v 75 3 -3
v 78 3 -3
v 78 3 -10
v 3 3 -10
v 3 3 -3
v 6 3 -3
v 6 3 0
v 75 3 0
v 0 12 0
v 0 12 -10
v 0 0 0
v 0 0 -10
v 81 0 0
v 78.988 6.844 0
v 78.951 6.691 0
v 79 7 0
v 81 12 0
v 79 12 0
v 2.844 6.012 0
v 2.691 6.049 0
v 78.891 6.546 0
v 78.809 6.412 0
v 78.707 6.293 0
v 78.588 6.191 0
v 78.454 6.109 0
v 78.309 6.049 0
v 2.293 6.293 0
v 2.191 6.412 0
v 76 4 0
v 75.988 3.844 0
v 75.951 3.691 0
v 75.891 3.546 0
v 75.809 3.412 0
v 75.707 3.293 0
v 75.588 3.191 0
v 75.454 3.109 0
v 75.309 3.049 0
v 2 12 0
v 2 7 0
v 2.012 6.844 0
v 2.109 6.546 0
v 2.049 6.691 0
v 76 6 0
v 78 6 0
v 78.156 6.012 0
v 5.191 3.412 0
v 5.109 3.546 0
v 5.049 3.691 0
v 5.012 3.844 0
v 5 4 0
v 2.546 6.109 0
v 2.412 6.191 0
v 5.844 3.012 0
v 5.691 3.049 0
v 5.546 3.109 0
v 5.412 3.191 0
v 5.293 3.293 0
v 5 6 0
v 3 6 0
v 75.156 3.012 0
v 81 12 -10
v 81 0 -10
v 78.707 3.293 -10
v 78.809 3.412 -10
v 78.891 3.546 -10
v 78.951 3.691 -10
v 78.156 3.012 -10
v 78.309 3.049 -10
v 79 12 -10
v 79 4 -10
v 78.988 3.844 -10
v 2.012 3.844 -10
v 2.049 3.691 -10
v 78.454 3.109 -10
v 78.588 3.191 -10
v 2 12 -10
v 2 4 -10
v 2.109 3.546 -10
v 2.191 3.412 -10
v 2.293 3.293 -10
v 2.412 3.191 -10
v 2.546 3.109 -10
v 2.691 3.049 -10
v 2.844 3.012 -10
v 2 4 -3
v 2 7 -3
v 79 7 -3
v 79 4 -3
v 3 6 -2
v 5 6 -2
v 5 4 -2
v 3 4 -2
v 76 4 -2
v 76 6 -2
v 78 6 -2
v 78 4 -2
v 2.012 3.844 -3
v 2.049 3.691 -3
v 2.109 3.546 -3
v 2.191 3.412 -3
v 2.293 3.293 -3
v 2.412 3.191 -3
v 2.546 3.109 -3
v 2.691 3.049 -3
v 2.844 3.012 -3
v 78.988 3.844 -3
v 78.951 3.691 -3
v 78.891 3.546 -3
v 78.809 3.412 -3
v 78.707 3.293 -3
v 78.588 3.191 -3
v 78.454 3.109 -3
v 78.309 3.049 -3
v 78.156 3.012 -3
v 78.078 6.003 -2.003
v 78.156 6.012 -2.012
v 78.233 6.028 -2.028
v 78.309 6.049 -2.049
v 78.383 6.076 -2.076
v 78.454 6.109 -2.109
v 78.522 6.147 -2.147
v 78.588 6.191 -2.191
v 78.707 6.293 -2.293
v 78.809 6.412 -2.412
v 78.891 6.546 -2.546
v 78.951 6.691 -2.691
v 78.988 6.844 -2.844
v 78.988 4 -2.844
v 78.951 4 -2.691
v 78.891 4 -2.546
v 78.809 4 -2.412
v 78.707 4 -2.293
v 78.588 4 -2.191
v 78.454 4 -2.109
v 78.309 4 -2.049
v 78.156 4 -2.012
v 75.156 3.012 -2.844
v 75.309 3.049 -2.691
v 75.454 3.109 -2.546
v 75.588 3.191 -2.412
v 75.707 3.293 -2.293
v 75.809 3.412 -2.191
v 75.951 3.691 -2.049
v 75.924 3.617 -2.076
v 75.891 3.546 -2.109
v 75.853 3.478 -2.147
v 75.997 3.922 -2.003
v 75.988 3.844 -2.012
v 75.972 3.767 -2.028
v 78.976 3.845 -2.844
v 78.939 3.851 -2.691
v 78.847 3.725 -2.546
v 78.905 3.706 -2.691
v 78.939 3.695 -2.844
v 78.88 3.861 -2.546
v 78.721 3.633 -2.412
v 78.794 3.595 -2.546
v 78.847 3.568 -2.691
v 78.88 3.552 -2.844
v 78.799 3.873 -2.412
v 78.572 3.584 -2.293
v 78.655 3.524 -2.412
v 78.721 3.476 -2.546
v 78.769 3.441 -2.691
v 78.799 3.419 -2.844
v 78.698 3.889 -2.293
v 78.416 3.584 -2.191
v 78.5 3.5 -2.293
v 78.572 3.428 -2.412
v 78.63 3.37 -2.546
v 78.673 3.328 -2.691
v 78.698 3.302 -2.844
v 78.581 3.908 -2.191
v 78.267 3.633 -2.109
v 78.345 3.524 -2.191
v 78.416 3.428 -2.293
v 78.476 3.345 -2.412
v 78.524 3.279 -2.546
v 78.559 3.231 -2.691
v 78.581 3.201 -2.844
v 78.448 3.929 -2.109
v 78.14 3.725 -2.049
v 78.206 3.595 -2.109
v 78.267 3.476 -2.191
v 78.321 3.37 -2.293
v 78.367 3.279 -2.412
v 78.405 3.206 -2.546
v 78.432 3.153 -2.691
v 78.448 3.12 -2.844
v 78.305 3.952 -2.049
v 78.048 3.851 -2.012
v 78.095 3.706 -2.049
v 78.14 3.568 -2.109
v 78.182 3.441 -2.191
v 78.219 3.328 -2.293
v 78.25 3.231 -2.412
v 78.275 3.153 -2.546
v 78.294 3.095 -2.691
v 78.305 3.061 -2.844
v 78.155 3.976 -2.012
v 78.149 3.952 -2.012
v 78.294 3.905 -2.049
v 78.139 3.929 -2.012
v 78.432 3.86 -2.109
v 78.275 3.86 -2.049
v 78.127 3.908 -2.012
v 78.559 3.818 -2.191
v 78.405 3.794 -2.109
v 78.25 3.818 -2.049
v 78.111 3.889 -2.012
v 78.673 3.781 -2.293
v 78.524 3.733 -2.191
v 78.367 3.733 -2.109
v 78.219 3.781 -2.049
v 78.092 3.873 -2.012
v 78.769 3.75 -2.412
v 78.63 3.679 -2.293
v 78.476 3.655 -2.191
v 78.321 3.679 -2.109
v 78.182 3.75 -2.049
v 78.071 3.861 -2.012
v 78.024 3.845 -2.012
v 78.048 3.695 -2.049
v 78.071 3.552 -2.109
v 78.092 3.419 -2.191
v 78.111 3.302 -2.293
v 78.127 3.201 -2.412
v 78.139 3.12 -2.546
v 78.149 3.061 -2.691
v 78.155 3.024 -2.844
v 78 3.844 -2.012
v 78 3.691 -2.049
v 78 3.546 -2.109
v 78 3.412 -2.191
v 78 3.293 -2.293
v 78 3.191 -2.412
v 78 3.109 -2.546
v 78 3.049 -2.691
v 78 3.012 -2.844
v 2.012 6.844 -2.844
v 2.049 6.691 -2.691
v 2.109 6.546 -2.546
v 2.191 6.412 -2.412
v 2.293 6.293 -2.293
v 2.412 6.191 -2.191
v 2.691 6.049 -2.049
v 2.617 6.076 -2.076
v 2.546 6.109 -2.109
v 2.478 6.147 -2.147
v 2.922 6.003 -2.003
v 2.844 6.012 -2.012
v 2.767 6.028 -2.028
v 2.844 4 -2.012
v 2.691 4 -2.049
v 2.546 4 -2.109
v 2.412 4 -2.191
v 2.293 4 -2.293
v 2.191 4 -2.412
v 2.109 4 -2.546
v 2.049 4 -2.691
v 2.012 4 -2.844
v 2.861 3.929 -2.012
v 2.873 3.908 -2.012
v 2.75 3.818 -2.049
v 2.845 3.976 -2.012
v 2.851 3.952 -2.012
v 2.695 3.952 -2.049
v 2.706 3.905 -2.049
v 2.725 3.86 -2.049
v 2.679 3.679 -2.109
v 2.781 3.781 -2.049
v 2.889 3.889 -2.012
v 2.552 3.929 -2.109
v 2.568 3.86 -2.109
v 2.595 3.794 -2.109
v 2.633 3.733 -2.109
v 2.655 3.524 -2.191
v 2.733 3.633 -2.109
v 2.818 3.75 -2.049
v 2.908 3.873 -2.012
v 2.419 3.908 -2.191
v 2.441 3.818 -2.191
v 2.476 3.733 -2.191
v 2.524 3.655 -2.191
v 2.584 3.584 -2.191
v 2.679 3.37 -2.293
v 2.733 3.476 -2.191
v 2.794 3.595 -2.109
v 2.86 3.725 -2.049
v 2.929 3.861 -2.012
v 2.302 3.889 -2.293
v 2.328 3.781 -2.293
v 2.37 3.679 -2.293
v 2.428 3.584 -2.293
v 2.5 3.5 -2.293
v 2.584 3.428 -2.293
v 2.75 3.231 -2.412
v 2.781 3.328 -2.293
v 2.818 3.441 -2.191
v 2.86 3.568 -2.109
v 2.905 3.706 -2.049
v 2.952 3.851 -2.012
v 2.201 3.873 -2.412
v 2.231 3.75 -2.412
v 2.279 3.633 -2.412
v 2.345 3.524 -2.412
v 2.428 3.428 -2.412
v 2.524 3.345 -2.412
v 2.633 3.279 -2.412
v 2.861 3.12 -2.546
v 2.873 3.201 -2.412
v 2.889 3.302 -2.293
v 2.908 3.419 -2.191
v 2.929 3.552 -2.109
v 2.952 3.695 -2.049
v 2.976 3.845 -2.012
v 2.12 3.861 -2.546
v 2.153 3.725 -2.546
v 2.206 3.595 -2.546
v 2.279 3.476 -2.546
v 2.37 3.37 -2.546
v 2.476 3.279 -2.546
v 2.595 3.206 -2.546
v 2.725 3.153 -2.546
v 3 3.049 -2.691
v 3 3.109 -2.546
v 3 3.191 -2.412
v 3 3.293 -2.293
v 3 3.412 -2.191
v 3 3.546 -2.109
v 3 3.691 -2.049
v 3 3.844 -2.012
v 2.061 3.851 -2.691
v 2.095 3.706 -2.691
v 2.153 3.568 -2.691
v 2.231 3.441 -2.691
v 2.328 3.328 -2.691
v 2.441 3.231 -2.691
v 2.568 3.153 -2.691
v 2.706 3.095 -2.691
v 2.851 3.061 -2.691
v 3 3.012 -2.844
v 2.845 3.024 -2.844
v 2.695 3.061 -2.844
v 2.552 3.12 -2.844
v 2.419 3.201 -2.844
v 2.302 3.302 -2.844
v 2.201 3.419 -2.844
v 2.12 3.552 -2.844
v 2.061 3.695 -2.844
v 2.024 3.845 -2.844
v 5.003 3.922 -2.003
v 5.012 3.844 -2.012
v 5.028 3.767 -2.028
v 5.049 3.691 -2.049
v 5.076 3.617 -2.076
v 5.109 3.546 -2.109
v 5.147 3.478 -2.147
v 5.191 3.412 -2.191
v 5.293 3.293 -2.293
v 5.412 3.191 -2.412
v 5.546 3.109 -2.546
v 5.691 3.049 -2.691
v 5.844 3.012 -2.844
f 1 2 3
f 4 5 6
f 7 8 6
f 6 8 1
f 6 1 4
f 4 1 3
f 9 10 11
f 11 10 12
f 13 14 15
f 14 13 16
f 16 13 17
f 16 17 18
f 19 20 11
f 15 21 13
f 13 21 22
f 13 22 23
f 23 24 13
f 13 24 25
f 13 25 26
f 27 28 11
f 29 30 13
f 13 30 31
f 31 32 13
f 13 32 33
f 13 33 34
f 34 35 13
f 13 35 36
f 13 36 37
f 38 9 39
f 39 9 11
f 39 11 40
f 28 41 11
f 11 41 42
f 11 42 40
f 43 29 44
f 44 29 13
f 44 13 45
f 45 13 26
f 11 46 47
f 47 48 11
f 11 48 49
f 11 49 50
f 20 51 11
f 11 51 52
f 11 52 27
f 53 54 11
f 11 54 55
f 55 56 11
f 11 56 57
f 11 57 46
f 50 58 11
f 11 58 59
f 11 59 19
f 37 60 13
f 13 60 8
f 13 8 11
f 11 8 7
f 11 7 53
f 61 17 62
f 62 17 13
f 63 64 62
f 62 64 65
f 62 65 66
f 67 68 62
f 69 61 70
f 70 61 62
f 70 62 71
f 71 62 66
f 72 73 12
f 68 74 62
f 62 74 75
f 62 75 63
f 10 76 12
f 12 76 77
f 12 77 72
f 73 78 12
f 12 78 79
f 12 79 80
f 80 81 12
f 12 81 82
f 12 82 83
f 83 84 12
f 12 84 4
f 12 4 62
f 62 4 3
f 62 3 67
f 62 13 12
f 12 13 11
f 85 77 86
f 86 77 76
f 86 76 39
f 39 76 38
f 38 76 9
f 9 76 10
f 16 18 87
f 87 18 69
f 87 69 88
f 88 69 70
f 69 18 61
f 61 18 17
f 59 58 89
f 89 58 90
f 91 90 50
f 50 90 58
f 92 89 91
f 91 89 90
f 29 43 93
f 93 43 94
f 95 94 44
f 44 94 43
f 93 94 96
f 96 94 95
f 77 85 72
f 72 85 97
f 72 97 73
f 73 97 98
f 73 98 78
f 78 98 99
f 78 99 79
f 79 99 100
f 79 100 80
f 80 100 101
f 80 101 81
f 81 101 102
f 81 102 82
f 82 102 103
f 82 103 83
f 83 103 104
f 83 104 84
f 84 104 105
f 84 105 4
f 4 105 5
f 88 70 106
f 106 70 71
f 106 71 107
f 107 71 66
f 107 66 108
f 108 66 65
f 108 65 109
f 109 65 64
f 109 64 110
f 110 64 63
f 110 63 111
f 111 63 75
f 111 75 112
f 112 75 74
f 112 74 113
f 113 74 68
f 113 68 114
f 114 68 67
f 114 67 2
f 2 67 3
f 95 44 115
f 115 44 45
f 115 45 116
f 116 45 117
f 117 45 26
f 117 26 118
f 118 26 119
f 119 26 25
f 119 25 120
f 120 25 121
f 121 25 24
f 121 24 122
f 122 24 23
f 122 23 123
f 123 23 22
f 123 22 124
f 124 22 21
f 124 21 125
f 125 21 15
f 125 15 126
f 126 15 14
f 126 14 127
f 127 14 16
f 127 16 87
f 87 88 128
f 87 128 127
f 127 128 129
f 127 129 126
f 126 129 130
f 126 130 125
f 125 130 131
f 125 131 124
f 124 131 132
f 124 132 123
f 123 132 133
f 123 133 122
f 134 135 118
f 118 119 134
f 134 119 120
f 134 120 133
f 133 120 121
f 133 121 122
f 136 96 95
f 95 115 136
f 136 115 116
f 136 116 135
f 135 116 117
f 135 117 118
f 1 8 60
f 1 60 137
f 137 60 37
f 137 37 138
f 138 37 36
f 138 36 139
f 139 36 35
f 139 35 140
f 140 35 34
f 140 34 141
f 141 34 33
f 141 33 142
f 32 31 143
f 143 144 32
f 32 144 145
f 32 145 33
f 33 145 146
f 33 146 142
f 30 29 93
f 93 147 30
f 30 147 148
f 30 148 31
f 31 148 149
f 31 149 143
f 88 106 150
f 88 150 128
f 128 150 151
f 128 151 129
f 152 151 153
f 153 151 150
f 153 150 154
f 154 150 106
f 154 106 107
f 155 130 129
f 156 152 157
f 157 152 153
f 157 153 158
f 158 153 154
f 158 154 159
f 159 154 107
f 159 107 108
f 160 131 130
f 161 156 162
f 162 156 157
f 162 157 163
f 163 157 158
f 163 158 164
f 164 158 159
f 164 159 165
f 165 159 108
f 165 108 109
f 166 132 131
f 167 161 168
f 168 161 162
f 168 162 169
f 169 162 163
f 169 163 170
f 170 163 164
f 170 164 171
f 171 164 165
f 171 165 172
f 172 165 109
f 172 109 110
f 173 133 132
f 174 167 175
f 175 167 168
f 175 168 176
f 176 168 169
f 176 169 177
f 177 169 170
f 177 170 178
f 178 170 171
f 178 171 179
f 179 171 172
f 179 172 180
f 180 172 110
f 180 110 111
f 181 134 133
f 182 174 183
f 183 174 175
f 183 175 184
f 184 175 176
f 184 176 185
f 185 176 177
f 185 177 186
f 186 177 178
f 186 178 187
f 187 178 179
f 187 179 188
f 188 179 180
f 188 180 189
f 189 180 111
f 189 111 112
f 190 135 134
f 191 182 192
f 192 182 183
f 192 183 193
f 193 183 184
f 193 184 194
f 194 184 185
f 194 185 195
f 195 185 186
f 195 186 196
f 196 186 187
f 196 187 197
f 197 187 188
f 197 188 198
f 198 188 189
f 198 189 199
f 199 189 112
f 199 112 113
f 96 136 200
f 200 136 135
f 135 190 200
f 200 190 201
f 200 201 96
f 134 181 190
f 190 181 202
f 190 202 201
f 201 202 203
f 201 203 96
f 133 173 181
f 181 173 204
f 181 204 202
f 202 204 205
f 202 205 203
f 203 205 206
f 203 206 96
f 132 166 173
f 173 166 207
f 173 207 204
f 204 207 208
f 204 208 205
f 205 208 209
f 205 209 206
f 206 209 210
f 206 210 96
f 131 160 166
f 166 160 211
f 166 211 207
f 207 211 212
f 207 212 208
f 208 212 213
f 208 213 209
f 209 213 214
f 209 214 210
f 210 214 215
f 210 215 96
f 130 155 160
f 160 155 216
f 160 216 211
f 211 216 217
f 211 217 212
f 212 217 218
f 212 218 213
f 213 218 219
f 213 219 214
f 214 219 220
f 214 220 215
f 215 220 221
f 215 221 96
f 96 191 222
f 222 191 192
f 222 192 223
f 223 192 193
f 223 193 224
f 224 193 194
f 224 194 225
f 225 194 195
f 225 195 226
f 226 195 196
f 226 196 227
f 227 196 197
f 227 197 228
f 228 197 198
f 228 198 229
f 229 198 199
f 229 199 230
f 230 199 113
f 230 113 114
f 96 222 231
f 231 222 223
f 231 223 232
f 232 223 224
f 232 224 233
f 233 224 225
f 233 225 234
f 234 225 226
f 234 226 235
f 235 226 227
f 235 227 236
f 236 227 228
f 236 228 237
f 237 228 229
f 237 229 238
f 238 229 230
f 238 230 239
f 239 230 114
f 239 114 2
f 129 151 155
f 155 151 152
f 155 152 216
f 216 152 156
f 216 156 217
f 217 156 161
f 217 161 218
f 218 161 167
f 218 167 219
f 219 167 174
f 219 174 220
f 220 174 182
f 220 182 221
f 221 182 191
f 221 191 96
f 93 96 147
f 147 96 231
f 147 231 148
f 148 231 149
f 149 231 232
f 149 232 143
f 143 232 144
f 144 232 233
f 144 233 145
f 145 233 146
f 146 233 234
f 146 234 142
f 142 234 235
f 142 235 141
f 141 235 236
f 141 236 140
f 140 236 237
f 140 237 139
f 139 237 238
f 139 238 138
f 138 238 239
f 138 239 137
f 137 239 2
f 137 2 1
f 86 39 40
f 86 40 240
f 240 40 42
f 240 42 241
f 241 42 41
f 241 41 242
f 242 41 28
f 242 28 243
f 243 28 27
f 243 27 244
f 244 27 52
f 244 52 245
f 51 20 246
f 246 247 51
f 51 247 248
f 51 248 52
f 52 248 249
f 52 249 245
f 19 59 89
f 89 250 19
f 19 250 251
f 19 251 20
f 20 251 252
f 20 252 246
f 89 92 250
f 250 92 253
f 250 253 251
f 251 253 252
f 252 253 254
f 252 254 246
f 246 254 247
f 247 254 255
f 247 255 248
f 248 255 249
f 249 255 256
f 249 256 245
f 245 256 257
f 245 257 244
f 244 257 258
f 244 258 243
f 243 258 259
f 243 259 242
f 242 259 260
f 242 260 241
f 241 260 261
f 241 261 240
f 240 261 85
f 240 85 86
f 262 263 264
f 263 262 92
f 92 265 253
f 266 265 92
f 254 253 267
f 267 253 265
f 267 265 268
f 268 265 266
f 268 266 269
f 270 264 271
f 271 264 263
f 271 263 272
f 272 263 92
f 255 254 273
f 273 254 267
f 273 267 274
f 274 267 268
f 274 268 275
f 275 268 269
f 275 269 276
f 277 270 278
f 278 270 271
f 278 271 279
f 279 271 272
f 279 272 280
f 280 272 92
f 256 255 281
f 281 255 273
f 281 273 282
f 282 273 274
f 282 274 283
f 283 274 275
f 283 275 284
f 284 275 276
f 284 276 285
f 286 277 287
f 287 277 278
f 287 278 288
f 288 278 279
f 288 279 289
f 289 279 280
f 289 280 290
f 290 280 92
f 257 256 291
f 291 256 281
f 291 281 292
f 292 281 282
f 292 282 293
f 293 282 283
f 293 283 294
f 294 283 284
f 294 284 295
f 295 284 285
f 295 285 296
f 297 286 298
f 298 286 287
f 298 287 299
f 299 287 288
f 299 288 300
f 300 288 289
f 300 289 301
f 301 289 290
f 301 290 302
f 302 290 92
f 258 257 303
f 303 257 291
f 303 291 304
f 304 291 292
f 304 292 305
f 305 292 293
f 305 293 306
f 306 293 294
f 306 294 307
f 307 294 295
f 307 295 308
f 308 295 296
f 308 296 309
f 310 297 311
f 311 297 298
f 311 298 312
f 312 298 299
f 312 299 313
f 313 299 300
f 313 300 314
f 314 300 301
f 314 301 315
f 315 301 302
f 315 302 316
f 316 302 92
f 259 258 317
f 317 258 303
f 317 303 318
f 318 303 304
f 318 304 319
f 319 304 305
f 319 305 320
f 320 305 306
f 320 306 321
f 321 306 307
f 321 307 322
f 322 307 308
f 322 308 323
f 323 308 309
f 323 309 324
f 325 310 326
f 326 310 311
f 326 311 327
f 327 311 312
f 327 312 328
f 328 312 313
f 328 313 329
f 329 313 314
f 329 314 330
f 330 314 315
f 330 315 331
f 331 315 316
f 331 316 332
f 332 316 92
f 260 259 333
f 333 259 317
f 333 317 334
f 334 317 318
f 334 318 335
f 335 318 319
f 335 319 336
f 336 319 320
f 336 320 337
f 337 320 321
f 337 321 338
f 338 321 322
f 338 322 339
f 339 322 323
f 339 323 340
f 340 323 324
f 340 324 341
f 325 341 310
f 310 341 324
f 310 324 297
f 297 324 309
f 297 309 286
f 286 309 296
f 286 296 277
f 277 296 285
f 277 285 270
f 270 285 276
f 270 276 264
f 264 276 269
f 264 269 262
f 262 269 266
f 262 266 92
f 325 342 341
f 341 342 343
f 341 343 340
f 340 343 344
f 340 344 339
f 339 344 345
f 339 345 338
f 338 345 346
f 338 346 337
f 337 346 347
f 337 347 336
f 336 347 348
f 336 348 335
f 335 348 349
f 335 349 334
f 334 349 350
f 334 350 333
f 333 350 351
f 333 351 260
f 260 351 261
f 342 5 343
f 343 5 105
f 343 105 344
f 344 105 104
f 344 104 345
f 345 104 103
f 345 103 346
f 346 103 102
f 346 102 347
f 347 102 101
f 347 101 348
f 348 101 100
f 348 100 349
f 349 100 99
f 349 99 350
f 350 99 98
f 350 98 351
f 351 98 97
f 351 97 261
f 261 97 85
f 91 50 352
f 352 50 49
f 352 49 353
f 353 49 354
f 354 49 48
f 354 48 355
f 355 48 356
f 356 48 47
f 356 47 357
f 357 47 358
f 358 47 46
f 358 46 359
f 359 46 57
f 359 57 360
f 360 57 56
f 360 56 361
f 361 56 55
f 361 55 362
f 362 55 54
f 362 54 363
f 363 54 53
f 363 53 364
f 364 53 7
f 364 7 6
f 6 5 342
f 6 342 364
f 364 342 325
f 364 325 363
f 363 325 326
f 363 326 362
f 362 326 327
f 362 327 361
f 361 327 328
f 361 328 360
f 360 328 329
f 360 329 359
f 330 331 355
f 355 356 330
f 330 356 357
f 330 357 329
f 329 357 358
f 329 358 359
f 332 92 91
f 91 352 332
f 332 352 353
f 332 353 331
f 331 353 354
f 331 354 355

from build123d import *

# Parameters (mm, degrees)
SKETCH1_W           = 81
SKETCH1_H           = 10
BOSS_EXTRUDE1_DEPTH = 3
SKETCH2_W           = 2
SKETCH2_H           = 10
BOSS_EXTRUDE2_DEPTH = 9
SKETCH3_W           = 3
SKETCH3_H           = 3
BOSS_EXTRUDE3_DEPTH = 2
FILLET1_R           = 1
FILLET2_R           = 1


with BuildPart() as part:
    # Sketch1 → Boss-Extrude1 (new body)
    with BuildSketch(Plane(origin=(0, 0, 0), x_dir=(1, 0, 0), z_dir=(0, 1, 0))):
        with Locations((40.5, 5)):
            Rectangle(SKETCH1_W, SKETCH1_H)
    extrude(amount=BOSS_EXTRUDE1_DEPTH)

    # Sketch2 → Boss-Extrude2 (add)
    with BuildSketch(Plane(origin=(0, 3, 0), x_dir=(1, 0, 0), z_dir=(0, 1, 0))):
        with Locations((1, 5)):
            Rectangle(SKETCH2_W, SKETCH2_H)
        with Locations((80, 5)):
            Rectangle(SKETCH2_W, SKETCH2_H)
    extrude(amount=BOSS_EXTRUDE2_DEPTH)

    # Sketch3 → Boss-Extrude3 (add)
    with BuildSketch(Plane.XY):
        with Locations((3.5, 4.5)):
            Rectangle(SKETCH3_W, SKETCH3_H)
        with Locations((77.5, 4.5)):
            Rectangle(SKETCH3_W, SKETCH3_H)
    extrude(amount=-BOSS_EXTRUDE3_DEPTH)

    # Fillet1
    fillet1_edges = [part.edges().sort_by_distance(p)[0] for p in [
        (79, 3, -6),
        (2, 3, -6),
    ]]
    fillet(fillet1_edges, radius=FILLET1_R)

    # Fillet2
    fillet2_edges = [part.edges().sort_by_distance(p)[0] for p in [
        (2, 5, -2),
        (2, 6, -1),
        (5, 3, -1),
        (79, 6, -1),
        (77, 3, -2),
        (76, 3, -1),
        (4, 3, -2),
        (2.292893219, 3.292893219, -2),
        (79, 5, -2),
        (78.707106781, 3.292893219, -2),
    ]]
    fillet(fillet2_edges, radius=FILLET2_R)


solid = part.part
